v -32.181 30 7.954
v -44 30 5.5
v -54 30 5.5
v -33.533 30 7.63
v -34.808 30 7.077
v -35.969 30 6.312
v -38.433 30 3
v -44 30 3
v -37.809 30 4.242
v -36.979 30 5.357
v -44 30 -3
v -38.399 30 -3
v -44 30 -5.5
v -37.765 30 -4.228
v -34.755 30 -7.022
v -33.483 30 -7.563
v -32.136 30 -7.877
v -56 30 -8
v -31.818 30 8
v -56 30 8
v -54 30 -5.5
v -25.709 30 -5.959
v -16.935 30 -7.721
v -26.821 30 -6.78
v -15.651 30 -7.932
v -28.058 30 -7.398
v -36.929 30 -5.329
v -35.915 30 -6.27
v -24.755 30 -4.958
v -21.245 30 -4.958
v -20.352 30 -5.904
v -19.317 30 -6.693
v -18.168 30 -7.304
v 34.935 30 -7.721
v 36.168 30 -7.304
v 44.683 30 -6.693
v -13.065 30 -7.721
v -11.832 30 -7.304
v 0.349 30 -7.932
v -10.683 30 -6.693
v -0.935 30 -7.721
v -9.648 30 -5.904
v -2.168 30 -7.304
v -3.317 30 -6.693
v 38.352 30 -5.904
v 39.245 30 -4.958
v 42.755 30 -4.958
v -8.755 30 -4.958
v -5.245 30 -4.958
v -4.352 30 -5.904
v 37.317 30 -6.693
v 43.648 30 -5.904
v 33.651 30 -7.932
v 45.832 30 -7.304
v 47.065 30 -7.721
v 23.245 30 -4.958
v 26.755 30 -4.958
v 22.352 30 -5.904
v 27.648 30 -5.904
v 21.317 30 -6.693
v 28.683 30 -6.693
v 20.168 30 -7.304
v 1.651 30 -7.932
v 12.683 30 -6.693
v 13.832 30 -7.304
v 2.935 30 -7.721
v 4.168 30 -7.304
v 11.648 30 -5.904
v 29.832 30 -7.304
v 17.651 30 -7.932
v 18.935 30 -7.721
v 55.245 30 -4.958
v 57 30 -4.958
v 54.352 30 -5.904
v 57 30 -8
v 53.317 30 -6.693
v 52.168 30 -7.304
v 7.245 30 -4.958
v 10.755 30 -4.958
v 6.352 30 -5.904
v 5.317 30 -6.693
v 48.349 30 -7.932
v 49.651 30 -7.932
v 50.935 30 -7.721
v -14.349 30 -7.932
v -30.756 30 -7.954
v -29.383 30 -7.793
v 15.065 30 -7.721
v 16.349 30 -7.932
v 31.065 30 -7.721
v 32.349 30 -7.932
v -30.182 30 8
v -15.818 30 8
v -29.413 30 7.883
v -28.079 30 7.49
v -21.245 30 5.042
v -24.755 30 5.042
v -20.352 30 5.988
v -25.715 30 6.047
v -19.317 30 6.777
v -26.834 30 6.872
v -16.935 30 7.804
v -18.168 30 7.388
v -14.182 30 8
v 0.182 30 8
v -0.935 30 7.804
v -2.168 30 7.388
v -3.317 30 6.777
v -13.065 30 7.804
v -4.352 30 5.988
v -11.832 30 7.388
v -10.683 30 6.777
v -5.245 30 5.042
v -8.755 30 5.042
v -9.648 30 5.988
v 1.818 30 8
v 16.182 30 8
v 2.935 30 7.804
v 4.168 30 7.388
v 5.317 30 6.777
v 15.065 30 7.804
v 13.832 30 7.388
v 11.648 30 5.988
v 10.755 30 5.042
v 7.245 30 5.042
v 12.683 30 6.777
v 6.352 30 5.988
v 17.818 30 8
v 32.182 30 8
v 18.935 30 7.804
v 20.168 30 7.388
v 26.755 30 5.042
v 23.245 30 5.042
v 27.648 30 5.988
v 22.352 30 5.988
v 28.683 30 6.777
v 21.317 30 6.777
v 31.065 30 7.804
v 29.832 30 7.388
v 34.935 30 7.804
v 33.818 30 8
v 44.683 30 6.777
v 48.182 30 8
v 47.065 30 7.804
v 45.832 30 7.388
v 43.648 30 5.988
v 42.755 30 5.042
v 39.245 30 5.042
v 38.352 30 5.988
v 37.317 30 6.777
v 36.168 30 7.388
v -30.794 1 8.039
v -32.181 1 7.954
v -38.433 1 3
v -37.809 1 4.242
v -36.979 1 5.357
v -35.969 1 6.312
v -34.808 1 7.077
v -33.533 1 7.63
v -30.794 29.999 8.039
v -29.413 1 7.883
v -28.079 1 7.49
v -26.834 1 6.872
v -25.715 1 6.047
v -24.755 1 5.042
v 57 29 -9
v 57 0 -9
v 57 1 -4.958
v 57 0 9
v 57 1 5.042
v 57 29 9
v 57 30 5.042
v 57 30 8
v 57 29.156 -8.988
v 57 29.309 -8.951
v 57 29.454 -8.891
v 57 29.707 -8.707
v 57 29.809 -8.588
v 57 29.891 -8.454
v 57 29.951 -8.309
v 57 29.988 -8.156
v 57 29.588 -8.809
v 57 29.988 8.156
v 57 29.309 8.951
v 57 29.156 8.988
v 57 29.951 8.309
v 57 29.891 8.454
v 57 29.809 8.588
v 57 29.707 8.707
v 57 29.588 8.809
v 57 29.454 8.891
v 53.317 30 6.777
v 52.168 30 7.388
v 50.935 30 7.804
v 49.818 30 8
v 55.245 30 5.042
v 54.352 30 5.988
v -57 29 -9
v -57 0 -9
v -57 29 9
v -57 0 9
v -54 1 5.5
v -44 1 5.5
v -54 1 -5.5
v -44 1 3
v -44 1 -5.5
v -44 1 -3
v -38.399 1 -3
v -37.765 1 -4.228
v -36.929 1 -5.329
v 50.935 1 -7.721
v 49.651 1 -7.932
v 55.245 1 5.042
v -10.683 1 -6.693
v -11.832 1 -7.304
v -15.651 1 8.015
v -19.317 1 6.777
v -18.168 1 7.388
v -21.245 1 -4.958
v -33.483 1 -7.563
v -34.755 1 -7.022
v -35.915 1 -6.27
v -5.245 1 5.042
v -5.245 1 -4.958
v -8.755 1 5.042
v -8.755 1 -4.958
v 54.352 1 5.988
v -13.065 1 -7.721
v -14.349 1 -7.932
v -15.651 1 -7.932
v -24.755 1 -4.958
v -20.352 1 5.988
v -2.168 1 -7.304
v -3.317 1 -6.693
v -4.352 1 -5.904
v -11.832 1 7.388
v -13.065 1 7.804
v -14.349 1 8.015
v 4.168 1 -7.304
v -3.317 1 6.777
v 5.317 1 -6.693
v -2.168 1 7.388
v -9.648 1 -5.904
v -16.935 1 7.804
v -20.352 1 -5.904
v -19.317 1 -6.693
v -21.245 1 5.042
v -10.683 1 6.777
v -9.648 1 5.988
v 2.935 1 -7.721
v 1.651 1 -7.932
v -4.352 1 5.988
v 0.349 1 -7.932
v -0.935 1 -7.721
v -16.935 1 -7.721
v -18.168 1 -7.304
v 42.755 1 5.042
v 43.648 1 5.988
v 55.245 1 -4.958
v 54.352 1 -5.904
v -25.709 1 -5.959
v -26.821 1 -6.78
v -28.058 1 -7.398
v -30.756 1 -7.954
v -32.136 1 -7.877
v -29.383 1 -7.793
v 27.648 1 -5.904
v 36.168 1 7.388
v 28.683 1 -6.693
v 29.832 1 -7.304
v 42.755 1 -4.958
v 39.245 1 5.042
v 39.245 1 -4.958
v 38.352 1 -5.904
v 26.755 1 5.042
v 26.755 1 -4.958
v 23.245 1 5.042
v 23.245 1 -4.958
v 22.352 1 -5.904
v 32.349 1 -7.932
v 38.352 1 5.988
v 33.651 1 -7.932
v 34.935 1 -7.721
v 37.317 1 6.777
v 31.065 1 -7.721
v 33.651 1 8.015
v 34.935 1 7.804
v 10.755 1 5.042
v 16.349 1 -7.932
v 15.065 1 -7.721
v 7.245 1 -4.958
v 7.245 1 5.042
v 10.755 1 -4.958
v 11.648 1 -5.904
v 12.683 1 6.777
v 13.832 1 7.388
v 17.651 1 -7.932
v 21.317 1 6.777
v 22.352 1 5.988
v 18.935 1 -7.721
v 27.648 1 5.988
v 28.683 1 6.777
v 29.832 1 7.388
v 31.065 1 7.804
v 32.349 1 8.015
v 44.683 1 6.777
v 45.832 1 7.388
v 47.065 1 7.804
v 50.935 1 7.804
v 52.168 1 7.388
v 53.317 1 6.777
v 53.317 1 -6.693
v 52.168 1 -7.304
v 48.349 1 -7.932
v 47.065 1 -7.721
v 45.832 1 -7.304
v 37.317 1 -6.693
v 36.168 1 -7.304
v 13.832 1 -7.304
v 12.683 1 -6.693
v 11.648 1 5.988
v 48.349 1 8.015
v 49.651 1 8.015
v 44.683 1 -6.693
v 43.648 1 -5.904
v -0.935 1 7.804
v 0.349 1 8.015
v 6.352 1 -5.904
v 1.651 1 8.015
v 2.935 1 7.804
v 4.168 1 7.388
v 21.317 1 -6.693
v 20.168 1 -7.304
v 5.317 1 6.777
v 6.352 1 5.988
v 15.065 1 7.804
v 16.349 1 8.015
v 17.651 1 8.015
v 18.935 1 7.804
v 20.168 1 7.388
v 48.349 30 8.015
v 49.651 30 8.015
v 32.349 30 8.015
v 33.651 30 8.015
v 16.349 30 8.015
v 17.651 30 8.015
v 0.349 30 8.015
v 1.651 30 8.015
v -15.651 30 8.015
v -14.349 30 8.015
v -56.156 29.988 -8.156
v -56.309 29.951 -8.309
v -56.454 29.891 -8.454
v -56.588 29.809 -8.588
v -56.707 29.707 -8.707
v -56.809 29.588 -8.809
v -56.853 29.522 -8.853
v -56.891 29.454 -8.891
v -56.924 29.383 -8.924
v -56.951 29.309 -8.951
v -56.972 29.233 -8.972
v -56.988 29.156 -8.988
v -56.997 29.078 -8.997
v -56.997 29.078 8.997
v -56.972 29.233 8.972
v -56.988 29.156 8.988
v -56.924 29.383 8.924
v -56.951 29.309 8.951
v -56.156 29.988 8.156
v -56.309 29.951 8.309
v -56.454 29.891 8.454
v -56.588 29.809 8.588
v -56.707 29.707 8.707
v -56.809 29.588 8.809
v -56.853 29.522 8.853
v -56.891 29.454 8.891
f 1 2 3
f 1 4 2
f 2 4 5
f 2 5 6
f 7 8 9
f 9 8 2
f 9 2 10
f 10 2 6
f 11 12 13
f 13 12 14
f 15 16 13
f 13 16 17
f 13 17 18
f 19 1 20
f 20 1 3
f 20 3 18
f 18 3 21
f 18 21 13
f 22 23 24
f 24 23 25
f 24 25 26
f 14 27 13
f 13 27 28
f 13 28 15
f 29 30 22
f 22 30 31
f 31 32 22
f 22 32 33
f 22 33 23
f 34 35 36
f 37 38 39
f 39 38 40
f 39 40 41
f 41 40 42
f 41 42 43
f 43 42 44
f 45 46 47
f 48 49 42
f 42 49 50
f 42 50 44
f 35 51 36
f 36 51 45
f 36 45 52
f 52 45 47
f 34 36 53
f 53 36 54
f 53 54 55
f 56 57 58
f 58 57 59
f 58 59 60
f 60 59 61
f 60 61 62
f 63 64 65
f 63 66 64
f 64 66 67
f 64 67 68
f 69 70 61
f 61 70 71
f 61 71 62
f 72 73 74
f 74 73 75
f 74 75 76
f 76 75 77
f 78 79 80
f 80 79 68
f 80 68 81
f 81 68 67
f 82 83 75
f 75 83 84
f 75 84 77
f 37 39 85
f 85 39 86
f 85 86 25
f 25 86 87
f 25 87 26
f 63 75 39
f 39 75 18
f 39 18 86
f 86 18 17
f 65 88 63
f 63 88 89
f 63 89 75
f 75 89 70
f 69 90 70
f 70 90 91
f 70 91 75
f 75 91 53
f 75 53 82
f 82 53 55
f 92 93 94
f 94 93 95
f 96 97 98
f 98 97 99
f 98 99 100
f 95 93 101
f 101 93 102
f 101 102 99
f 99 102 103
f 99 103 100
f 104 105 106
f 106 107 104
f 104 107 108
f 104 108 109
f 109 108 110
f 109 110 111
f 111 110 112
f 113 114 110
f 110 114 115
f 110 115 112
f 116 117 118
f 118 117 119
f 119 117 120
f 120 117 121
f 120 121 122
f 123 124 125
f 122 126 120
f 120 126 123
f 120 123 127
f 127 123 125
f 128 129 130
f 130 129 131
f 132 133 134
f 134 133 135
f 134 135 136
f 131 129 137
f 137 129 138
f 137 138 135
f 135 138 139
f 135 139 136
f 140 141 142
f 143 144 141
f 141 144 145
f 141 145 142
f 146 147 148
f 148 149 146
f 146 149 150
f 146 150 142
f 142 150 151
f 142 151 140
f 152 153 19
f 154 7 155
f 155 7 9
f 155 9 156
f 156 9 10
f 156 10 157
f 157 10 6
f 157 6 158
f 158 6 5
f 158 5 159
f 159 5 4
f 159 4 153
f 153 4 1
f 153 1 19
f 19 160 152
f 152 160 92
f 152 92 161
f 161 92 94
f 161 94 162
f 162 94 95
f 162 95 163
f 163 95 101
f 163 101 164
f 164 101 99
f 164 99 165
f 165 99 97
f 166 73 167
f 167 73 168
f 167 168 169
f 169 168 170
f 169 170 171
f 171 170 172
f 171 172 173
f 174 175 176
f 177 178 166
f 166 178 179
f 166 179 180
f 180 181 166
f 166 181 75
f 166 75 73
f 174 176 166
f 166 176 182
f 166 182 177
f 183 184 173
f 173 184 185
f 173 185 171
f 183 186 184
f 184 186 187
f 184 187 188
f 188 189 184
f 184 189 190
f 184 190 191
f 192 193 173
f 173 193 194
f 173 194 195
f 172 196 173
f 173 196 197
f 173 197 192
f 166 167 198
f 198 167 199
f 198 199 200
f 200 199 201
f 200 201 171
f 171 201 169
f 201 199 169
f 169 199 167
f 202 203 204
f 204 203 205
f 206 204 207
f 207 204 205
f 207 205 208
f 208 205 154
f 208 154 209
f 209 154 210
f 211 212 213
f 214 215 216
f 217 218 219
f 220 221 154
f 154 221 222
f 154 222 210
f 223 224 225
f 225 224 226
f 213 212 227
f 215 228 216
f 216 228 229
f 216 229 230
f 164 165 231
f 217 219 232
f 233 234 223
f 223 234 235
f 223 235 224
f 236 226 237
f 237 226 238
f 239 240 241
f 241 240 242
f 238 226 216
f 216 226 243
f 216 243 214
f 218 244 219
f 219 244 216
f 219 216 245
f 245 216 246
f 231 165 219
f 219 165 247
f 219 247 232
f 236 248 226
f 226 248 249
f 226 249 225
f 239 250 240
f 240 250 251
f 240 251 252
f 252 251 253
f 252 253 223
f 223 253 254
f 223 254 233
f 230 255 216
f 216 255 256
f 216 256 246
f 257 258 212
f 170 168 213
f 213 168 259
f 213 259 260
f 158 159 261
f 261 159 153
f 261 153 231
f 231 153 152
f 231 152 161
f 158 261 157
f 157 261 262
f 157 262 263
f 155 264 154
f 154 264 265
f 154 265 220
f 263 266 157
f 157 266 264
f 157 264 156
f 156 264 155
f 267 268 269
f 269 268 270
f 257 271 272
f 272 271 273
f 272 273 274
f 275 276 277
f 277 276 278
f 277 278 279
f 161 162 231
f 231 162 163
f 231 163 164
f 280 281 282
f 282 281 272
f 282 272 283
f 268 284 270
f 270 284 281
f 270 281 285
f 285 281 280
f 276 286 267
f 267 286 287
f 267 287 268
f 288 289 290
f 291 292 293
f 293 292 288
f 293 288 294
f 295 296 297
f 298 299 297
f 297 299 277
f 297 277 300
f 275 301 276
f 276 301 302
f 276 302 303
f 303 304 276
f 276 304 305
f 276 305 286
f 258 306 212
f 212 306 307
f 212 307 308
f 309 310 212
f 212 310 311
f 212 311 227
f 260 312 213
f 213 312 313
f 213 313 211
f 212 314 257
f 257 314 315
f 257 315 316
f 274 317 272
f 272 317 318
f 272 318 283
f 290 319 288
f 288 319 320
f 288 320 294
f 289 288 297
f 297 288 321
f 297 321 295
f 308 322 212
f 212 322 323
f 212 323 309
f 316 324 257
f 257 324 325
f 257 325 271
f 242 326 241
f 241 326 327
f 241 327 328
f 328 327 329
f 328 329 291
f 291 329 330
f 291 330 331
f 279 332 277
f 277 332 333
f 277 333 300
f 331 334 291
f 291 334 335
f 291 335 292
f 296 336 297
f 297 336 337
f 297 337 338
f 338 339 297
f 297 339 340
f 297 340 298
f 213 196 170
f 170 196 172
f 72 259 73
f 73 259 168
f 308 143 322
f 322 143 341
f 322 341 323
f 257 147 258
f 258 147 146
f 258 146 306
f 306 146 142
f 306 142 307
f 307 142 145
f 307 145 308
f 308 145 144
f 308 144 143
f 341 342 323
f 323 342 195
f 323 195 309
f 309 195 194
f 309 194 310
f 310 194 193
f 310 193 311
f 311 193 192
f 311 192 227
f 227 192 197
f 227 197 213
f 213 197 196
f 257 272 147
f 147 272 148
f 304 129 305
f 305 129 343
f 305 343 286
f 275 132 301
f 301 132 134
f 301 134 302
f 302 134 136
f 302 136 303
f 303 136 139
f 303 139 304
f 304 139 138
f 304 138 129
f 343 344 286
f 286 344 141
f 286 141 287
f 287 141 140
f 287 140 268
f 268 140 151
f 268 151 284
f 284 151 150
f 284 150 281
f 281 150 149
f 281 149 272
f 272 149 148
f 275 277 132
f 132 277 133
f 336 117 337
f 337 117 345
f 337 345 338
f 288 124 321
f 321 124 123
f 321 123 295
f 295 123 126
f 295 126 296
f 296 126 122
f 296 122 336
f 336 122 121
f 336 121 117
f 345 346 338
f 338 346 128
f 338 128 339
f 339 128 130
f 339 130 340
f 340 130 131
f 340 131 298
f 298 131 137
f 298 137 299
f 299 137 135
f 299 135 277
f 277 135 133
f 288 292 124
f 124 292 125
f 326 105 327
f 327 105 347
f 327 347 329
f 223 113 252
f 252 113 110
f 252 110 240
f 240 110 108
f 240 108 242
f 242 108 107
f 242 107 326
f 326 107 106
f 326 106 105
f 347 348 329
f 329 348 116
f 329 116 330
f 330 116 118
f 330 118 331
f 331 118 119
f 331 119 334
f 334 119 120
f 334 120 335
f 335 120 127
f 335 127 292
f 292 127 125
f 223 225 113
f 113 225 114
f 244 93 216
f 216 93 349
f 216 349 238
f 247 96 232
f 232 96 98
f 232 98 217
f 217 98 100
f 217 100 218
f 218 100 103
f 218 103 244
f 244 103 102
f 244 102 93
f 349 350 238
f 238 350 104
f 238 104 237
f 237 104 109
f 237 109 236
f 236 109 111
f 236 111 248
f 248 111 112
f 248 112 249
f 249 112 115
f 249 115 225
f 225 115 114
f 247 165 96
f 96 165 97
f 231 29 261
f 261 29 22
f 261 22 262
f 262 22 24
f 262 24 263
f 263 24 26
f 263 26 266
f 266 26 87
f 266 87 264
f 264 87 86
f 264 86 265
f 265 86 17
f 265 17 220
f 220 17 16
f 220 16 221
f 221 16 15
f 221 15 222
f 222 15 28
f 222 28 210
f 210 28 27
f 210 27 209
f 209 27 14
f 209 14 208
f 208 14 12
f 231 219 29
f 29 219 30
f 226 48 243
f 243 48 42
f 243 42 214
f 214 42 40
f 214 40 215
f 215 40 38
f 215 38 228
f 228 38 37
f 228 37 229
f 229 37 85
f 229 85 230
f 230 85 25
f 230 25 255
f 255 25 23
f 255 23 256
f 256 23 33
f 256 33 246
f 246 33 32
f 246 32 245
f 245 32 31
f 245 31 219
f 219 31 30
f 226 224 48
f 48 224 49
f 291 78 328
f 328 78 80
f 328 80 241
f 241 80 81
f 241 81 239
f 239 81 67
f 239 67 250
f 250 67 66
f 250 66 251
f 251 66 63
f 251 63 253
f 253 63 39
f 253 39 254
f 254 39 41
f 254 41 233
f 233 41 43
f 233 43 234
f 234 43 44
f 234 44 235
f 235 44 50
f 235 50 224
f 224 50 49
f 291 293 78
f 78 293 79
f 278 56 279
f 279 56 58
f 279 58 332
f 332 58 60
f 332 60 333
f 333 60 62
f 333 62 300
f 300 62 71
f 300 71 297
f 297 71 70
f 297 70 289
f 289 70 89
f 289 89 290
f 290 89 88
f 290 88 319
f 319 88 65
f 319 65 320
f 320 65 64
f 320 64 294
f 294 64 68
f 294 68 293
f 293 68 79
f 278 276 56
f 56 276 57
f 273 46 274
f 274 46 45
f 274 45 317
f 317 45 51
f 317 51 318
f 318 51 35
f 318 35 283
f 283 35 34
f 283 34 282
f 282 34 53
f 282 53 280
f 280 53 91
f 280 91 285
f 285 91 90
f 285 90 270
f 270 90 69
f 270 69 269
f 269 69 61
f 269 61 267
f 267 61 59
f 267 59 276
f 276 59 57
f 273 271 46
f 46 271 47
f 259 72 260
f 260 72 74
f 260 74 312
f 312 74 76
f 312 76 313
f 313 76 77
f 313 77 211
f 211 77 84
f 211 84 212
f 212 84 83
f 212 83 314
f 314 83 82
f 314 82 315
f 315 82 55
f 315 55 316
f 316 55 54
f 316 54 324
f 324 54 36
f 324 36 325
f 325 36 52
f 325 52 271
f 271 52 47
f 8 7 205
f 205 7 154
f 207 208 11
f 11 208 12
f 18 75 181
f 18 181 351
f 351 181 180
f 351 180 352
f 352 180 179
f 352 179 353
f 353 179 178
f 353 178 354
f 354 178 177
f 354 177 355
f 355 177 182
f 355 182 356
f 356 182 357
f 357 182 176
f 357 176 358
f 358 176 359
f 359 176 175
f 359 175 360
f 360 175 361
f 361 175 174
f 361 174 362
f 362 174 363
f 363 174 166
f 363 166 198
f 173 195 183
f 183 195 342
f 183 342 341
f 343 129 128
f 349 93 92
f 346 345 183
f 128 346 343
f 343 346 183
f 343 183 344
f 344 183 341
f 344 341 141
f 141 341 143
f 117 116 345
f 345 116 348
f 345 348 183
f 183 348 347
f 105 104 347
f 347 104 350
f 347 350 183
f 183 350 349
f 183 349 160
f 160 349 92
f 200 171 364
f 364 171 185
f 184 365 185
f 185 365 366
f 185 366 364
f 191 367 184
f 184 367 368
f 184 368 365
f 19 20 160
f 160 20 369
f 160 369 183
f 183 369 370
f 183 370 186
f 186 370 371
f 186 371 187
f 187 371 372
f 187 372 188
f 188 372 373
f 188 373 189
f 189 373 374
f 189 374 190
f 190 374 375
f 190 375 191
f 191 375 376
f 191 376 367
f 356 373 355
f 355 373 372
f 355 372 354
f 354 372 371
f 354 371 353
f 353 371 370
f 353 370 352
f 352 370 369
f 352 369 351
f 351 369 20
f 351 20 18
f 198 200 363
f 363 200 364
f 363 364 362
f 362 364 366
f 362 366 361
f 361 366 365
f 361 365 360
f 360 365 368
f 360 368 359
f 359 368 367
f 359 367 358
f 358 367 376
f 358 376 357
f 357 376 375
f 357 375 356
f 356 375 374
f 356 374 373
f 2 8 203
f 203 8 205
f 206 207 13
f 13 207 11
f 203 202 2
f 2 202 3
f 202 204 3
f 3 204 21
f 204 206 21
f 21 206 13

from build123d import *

# Parameters (mm, degrees)
SKETCH1_W           = 114
SKETCH1_H           = 18
BOSS_EXTRUDE1_DEPTH = 30
CUT_EXTRUDE2_DEPTH  = 29
SKETCH4_W           = 6
SKETCH4_H           = 6
CUT_EXTRUDE4_DEPTH  = 29
FILLET1_R           = 1
SKETCH5_W           = 10
SKETCH5_H           = 11
CUT_EXTRUDE6_DEPTH  = 29


with BuildPart() as part:
    # Sketch1 → Boss-Extrude1 (new body)
    with BuildSketch(Plane(origin=(0, 0, 0), x_dir=(1, 0, 0), z_dir=(0, 1, 0))):
        Rectangle(SKETCH1_W, SKETCH1_H)
    extrude(amount=BOSS_EXTRUDE1_DEPTH)

    # Sketch2 → Cut-Extrude2 (cut)
    with BuildSketch(Plane(origin=(0, 30, 0), x_dir=(1, 0, 0), z_dir=(0, 1, 0))):
        with BuildLine():
            Line((-21.244998569, 4.958042294), (-24.755000861, 4.958042294))
            ThreePointArc((-24.755000861, 4.958042294), (-39, -0.041954456), (-24.755003142, -5.041957706))
            Line((-24.755003142, -5.041957706), (-21.244997428, -5.041957706))
            ThreePointArc((-21.244997428, -5.041957706), (-15, -8.041956993), (-8.755002572, -5.041957706))
            Line((-8.755002572, -5.041957706), (-5.244997998, -5.041957706))
            ThreePointArc((-5.244997998, -5.041957706), (1, -8.041957706), (7.244997998, -5.041957706))
            Line((7.244997998, -5.041957706), (10.755002002, -5.041957706))
            ThreePointArc((10.755002002, -5.041957706), (17, -8.041957706), (23.244997998, -5.041957706))
            Line((23.244997998, -5.041957706), (26.755002002, -5.041957706))
            ThreePointArc((26.755002002, -5.041957706), (33, -8.041957706), (39.244997998, -5.041957706))
            Line((39.244997998, -5.041957706), (42.755002002, -5.041957706))
            ThreePointArc((42.755002002, -5.041957706), (49, -8.041957706), (55.244997998, -5.041957706))
            Line((55.244997998, -5.041957706), (57, -5.041957706))
            Line((57, -5.041957706), (57, 4.958042294))
            Line((57, 4.958042294), (55.244997998, 4.958042294))
            ThreePointArc((55.244997998, 4.958042294), (49, 7.958042294), (42.755002002, 4.958042294))
            Line((42.755002002, 4.958042294), (39.244997998, 4.958042294))
            ThreePointArc((39.244997998, 4.958042294), (33, 7.958042294), (26.755002002, 4.958042294))
            Line((26.755002002, 4.958042294), (23.244997998, 4.958042294))
            ThreePointArc((23.244997998, 4.958042294), (17, 7.958042294), (10.755002002, 4.958042294))
            Line((10.755002002, 4.958042294), (7.244997998, 4.958042294))
            ThreePointArc((7.244997998, 4.958042294), (1, 7.958042294), (-5.244997998, 4.958042294))
            Line((-5.244997998, 4.958042294), (-8.755001431, 4.958042294))
            ThreePointArc((-8.755001431, 4.958042294), (-15, 7.958043007), (-21.244998569, 4.958042294))
        make_face()
    extrude(amount=-CUT_EXTRUDE2_DEPTH, mode=Mode.SUBTRACT)

    # Sketch4 → Cut-Extrude4 (cut)
    with BuildSketch(Plane(origin=(0, 30, 0), x_dir=(1, 0, 0), z_dir=(0, 1, 0))):
        with Locations((-41, 0)):
            Rectangle(SKETCH4_W, SKETCH4_H)
    extrude(amount=-CUT_EXTRUDE4_DEPTH, mode=Mode.SUBTRACT)

    # Fillet1
    fillet1_edges = [part.edges().sort_by_distance(p)[0] for p in [
        (-57, 30, 0),
        (0, 30, 9),
        (0, 30, -9),
    ]]
    fillet(fillet1_edges, radius=FILLET1_R)

    # Sketch5 → Cut-Extrude6 (cut)
    with BuildSketch(Plane(origin=(0, 30, 0), x_dir=(1, 0, 0), z_dir=(0, 1, 0))):
        with Locations((-49, 0)):
            Rectangle(SKETCH5_W, SKETCH5_H)
    extrude(amount=-CUT_EXTRUDE6_DEPTH, mode=Mode.SUBTRACT)


solid = part.part
